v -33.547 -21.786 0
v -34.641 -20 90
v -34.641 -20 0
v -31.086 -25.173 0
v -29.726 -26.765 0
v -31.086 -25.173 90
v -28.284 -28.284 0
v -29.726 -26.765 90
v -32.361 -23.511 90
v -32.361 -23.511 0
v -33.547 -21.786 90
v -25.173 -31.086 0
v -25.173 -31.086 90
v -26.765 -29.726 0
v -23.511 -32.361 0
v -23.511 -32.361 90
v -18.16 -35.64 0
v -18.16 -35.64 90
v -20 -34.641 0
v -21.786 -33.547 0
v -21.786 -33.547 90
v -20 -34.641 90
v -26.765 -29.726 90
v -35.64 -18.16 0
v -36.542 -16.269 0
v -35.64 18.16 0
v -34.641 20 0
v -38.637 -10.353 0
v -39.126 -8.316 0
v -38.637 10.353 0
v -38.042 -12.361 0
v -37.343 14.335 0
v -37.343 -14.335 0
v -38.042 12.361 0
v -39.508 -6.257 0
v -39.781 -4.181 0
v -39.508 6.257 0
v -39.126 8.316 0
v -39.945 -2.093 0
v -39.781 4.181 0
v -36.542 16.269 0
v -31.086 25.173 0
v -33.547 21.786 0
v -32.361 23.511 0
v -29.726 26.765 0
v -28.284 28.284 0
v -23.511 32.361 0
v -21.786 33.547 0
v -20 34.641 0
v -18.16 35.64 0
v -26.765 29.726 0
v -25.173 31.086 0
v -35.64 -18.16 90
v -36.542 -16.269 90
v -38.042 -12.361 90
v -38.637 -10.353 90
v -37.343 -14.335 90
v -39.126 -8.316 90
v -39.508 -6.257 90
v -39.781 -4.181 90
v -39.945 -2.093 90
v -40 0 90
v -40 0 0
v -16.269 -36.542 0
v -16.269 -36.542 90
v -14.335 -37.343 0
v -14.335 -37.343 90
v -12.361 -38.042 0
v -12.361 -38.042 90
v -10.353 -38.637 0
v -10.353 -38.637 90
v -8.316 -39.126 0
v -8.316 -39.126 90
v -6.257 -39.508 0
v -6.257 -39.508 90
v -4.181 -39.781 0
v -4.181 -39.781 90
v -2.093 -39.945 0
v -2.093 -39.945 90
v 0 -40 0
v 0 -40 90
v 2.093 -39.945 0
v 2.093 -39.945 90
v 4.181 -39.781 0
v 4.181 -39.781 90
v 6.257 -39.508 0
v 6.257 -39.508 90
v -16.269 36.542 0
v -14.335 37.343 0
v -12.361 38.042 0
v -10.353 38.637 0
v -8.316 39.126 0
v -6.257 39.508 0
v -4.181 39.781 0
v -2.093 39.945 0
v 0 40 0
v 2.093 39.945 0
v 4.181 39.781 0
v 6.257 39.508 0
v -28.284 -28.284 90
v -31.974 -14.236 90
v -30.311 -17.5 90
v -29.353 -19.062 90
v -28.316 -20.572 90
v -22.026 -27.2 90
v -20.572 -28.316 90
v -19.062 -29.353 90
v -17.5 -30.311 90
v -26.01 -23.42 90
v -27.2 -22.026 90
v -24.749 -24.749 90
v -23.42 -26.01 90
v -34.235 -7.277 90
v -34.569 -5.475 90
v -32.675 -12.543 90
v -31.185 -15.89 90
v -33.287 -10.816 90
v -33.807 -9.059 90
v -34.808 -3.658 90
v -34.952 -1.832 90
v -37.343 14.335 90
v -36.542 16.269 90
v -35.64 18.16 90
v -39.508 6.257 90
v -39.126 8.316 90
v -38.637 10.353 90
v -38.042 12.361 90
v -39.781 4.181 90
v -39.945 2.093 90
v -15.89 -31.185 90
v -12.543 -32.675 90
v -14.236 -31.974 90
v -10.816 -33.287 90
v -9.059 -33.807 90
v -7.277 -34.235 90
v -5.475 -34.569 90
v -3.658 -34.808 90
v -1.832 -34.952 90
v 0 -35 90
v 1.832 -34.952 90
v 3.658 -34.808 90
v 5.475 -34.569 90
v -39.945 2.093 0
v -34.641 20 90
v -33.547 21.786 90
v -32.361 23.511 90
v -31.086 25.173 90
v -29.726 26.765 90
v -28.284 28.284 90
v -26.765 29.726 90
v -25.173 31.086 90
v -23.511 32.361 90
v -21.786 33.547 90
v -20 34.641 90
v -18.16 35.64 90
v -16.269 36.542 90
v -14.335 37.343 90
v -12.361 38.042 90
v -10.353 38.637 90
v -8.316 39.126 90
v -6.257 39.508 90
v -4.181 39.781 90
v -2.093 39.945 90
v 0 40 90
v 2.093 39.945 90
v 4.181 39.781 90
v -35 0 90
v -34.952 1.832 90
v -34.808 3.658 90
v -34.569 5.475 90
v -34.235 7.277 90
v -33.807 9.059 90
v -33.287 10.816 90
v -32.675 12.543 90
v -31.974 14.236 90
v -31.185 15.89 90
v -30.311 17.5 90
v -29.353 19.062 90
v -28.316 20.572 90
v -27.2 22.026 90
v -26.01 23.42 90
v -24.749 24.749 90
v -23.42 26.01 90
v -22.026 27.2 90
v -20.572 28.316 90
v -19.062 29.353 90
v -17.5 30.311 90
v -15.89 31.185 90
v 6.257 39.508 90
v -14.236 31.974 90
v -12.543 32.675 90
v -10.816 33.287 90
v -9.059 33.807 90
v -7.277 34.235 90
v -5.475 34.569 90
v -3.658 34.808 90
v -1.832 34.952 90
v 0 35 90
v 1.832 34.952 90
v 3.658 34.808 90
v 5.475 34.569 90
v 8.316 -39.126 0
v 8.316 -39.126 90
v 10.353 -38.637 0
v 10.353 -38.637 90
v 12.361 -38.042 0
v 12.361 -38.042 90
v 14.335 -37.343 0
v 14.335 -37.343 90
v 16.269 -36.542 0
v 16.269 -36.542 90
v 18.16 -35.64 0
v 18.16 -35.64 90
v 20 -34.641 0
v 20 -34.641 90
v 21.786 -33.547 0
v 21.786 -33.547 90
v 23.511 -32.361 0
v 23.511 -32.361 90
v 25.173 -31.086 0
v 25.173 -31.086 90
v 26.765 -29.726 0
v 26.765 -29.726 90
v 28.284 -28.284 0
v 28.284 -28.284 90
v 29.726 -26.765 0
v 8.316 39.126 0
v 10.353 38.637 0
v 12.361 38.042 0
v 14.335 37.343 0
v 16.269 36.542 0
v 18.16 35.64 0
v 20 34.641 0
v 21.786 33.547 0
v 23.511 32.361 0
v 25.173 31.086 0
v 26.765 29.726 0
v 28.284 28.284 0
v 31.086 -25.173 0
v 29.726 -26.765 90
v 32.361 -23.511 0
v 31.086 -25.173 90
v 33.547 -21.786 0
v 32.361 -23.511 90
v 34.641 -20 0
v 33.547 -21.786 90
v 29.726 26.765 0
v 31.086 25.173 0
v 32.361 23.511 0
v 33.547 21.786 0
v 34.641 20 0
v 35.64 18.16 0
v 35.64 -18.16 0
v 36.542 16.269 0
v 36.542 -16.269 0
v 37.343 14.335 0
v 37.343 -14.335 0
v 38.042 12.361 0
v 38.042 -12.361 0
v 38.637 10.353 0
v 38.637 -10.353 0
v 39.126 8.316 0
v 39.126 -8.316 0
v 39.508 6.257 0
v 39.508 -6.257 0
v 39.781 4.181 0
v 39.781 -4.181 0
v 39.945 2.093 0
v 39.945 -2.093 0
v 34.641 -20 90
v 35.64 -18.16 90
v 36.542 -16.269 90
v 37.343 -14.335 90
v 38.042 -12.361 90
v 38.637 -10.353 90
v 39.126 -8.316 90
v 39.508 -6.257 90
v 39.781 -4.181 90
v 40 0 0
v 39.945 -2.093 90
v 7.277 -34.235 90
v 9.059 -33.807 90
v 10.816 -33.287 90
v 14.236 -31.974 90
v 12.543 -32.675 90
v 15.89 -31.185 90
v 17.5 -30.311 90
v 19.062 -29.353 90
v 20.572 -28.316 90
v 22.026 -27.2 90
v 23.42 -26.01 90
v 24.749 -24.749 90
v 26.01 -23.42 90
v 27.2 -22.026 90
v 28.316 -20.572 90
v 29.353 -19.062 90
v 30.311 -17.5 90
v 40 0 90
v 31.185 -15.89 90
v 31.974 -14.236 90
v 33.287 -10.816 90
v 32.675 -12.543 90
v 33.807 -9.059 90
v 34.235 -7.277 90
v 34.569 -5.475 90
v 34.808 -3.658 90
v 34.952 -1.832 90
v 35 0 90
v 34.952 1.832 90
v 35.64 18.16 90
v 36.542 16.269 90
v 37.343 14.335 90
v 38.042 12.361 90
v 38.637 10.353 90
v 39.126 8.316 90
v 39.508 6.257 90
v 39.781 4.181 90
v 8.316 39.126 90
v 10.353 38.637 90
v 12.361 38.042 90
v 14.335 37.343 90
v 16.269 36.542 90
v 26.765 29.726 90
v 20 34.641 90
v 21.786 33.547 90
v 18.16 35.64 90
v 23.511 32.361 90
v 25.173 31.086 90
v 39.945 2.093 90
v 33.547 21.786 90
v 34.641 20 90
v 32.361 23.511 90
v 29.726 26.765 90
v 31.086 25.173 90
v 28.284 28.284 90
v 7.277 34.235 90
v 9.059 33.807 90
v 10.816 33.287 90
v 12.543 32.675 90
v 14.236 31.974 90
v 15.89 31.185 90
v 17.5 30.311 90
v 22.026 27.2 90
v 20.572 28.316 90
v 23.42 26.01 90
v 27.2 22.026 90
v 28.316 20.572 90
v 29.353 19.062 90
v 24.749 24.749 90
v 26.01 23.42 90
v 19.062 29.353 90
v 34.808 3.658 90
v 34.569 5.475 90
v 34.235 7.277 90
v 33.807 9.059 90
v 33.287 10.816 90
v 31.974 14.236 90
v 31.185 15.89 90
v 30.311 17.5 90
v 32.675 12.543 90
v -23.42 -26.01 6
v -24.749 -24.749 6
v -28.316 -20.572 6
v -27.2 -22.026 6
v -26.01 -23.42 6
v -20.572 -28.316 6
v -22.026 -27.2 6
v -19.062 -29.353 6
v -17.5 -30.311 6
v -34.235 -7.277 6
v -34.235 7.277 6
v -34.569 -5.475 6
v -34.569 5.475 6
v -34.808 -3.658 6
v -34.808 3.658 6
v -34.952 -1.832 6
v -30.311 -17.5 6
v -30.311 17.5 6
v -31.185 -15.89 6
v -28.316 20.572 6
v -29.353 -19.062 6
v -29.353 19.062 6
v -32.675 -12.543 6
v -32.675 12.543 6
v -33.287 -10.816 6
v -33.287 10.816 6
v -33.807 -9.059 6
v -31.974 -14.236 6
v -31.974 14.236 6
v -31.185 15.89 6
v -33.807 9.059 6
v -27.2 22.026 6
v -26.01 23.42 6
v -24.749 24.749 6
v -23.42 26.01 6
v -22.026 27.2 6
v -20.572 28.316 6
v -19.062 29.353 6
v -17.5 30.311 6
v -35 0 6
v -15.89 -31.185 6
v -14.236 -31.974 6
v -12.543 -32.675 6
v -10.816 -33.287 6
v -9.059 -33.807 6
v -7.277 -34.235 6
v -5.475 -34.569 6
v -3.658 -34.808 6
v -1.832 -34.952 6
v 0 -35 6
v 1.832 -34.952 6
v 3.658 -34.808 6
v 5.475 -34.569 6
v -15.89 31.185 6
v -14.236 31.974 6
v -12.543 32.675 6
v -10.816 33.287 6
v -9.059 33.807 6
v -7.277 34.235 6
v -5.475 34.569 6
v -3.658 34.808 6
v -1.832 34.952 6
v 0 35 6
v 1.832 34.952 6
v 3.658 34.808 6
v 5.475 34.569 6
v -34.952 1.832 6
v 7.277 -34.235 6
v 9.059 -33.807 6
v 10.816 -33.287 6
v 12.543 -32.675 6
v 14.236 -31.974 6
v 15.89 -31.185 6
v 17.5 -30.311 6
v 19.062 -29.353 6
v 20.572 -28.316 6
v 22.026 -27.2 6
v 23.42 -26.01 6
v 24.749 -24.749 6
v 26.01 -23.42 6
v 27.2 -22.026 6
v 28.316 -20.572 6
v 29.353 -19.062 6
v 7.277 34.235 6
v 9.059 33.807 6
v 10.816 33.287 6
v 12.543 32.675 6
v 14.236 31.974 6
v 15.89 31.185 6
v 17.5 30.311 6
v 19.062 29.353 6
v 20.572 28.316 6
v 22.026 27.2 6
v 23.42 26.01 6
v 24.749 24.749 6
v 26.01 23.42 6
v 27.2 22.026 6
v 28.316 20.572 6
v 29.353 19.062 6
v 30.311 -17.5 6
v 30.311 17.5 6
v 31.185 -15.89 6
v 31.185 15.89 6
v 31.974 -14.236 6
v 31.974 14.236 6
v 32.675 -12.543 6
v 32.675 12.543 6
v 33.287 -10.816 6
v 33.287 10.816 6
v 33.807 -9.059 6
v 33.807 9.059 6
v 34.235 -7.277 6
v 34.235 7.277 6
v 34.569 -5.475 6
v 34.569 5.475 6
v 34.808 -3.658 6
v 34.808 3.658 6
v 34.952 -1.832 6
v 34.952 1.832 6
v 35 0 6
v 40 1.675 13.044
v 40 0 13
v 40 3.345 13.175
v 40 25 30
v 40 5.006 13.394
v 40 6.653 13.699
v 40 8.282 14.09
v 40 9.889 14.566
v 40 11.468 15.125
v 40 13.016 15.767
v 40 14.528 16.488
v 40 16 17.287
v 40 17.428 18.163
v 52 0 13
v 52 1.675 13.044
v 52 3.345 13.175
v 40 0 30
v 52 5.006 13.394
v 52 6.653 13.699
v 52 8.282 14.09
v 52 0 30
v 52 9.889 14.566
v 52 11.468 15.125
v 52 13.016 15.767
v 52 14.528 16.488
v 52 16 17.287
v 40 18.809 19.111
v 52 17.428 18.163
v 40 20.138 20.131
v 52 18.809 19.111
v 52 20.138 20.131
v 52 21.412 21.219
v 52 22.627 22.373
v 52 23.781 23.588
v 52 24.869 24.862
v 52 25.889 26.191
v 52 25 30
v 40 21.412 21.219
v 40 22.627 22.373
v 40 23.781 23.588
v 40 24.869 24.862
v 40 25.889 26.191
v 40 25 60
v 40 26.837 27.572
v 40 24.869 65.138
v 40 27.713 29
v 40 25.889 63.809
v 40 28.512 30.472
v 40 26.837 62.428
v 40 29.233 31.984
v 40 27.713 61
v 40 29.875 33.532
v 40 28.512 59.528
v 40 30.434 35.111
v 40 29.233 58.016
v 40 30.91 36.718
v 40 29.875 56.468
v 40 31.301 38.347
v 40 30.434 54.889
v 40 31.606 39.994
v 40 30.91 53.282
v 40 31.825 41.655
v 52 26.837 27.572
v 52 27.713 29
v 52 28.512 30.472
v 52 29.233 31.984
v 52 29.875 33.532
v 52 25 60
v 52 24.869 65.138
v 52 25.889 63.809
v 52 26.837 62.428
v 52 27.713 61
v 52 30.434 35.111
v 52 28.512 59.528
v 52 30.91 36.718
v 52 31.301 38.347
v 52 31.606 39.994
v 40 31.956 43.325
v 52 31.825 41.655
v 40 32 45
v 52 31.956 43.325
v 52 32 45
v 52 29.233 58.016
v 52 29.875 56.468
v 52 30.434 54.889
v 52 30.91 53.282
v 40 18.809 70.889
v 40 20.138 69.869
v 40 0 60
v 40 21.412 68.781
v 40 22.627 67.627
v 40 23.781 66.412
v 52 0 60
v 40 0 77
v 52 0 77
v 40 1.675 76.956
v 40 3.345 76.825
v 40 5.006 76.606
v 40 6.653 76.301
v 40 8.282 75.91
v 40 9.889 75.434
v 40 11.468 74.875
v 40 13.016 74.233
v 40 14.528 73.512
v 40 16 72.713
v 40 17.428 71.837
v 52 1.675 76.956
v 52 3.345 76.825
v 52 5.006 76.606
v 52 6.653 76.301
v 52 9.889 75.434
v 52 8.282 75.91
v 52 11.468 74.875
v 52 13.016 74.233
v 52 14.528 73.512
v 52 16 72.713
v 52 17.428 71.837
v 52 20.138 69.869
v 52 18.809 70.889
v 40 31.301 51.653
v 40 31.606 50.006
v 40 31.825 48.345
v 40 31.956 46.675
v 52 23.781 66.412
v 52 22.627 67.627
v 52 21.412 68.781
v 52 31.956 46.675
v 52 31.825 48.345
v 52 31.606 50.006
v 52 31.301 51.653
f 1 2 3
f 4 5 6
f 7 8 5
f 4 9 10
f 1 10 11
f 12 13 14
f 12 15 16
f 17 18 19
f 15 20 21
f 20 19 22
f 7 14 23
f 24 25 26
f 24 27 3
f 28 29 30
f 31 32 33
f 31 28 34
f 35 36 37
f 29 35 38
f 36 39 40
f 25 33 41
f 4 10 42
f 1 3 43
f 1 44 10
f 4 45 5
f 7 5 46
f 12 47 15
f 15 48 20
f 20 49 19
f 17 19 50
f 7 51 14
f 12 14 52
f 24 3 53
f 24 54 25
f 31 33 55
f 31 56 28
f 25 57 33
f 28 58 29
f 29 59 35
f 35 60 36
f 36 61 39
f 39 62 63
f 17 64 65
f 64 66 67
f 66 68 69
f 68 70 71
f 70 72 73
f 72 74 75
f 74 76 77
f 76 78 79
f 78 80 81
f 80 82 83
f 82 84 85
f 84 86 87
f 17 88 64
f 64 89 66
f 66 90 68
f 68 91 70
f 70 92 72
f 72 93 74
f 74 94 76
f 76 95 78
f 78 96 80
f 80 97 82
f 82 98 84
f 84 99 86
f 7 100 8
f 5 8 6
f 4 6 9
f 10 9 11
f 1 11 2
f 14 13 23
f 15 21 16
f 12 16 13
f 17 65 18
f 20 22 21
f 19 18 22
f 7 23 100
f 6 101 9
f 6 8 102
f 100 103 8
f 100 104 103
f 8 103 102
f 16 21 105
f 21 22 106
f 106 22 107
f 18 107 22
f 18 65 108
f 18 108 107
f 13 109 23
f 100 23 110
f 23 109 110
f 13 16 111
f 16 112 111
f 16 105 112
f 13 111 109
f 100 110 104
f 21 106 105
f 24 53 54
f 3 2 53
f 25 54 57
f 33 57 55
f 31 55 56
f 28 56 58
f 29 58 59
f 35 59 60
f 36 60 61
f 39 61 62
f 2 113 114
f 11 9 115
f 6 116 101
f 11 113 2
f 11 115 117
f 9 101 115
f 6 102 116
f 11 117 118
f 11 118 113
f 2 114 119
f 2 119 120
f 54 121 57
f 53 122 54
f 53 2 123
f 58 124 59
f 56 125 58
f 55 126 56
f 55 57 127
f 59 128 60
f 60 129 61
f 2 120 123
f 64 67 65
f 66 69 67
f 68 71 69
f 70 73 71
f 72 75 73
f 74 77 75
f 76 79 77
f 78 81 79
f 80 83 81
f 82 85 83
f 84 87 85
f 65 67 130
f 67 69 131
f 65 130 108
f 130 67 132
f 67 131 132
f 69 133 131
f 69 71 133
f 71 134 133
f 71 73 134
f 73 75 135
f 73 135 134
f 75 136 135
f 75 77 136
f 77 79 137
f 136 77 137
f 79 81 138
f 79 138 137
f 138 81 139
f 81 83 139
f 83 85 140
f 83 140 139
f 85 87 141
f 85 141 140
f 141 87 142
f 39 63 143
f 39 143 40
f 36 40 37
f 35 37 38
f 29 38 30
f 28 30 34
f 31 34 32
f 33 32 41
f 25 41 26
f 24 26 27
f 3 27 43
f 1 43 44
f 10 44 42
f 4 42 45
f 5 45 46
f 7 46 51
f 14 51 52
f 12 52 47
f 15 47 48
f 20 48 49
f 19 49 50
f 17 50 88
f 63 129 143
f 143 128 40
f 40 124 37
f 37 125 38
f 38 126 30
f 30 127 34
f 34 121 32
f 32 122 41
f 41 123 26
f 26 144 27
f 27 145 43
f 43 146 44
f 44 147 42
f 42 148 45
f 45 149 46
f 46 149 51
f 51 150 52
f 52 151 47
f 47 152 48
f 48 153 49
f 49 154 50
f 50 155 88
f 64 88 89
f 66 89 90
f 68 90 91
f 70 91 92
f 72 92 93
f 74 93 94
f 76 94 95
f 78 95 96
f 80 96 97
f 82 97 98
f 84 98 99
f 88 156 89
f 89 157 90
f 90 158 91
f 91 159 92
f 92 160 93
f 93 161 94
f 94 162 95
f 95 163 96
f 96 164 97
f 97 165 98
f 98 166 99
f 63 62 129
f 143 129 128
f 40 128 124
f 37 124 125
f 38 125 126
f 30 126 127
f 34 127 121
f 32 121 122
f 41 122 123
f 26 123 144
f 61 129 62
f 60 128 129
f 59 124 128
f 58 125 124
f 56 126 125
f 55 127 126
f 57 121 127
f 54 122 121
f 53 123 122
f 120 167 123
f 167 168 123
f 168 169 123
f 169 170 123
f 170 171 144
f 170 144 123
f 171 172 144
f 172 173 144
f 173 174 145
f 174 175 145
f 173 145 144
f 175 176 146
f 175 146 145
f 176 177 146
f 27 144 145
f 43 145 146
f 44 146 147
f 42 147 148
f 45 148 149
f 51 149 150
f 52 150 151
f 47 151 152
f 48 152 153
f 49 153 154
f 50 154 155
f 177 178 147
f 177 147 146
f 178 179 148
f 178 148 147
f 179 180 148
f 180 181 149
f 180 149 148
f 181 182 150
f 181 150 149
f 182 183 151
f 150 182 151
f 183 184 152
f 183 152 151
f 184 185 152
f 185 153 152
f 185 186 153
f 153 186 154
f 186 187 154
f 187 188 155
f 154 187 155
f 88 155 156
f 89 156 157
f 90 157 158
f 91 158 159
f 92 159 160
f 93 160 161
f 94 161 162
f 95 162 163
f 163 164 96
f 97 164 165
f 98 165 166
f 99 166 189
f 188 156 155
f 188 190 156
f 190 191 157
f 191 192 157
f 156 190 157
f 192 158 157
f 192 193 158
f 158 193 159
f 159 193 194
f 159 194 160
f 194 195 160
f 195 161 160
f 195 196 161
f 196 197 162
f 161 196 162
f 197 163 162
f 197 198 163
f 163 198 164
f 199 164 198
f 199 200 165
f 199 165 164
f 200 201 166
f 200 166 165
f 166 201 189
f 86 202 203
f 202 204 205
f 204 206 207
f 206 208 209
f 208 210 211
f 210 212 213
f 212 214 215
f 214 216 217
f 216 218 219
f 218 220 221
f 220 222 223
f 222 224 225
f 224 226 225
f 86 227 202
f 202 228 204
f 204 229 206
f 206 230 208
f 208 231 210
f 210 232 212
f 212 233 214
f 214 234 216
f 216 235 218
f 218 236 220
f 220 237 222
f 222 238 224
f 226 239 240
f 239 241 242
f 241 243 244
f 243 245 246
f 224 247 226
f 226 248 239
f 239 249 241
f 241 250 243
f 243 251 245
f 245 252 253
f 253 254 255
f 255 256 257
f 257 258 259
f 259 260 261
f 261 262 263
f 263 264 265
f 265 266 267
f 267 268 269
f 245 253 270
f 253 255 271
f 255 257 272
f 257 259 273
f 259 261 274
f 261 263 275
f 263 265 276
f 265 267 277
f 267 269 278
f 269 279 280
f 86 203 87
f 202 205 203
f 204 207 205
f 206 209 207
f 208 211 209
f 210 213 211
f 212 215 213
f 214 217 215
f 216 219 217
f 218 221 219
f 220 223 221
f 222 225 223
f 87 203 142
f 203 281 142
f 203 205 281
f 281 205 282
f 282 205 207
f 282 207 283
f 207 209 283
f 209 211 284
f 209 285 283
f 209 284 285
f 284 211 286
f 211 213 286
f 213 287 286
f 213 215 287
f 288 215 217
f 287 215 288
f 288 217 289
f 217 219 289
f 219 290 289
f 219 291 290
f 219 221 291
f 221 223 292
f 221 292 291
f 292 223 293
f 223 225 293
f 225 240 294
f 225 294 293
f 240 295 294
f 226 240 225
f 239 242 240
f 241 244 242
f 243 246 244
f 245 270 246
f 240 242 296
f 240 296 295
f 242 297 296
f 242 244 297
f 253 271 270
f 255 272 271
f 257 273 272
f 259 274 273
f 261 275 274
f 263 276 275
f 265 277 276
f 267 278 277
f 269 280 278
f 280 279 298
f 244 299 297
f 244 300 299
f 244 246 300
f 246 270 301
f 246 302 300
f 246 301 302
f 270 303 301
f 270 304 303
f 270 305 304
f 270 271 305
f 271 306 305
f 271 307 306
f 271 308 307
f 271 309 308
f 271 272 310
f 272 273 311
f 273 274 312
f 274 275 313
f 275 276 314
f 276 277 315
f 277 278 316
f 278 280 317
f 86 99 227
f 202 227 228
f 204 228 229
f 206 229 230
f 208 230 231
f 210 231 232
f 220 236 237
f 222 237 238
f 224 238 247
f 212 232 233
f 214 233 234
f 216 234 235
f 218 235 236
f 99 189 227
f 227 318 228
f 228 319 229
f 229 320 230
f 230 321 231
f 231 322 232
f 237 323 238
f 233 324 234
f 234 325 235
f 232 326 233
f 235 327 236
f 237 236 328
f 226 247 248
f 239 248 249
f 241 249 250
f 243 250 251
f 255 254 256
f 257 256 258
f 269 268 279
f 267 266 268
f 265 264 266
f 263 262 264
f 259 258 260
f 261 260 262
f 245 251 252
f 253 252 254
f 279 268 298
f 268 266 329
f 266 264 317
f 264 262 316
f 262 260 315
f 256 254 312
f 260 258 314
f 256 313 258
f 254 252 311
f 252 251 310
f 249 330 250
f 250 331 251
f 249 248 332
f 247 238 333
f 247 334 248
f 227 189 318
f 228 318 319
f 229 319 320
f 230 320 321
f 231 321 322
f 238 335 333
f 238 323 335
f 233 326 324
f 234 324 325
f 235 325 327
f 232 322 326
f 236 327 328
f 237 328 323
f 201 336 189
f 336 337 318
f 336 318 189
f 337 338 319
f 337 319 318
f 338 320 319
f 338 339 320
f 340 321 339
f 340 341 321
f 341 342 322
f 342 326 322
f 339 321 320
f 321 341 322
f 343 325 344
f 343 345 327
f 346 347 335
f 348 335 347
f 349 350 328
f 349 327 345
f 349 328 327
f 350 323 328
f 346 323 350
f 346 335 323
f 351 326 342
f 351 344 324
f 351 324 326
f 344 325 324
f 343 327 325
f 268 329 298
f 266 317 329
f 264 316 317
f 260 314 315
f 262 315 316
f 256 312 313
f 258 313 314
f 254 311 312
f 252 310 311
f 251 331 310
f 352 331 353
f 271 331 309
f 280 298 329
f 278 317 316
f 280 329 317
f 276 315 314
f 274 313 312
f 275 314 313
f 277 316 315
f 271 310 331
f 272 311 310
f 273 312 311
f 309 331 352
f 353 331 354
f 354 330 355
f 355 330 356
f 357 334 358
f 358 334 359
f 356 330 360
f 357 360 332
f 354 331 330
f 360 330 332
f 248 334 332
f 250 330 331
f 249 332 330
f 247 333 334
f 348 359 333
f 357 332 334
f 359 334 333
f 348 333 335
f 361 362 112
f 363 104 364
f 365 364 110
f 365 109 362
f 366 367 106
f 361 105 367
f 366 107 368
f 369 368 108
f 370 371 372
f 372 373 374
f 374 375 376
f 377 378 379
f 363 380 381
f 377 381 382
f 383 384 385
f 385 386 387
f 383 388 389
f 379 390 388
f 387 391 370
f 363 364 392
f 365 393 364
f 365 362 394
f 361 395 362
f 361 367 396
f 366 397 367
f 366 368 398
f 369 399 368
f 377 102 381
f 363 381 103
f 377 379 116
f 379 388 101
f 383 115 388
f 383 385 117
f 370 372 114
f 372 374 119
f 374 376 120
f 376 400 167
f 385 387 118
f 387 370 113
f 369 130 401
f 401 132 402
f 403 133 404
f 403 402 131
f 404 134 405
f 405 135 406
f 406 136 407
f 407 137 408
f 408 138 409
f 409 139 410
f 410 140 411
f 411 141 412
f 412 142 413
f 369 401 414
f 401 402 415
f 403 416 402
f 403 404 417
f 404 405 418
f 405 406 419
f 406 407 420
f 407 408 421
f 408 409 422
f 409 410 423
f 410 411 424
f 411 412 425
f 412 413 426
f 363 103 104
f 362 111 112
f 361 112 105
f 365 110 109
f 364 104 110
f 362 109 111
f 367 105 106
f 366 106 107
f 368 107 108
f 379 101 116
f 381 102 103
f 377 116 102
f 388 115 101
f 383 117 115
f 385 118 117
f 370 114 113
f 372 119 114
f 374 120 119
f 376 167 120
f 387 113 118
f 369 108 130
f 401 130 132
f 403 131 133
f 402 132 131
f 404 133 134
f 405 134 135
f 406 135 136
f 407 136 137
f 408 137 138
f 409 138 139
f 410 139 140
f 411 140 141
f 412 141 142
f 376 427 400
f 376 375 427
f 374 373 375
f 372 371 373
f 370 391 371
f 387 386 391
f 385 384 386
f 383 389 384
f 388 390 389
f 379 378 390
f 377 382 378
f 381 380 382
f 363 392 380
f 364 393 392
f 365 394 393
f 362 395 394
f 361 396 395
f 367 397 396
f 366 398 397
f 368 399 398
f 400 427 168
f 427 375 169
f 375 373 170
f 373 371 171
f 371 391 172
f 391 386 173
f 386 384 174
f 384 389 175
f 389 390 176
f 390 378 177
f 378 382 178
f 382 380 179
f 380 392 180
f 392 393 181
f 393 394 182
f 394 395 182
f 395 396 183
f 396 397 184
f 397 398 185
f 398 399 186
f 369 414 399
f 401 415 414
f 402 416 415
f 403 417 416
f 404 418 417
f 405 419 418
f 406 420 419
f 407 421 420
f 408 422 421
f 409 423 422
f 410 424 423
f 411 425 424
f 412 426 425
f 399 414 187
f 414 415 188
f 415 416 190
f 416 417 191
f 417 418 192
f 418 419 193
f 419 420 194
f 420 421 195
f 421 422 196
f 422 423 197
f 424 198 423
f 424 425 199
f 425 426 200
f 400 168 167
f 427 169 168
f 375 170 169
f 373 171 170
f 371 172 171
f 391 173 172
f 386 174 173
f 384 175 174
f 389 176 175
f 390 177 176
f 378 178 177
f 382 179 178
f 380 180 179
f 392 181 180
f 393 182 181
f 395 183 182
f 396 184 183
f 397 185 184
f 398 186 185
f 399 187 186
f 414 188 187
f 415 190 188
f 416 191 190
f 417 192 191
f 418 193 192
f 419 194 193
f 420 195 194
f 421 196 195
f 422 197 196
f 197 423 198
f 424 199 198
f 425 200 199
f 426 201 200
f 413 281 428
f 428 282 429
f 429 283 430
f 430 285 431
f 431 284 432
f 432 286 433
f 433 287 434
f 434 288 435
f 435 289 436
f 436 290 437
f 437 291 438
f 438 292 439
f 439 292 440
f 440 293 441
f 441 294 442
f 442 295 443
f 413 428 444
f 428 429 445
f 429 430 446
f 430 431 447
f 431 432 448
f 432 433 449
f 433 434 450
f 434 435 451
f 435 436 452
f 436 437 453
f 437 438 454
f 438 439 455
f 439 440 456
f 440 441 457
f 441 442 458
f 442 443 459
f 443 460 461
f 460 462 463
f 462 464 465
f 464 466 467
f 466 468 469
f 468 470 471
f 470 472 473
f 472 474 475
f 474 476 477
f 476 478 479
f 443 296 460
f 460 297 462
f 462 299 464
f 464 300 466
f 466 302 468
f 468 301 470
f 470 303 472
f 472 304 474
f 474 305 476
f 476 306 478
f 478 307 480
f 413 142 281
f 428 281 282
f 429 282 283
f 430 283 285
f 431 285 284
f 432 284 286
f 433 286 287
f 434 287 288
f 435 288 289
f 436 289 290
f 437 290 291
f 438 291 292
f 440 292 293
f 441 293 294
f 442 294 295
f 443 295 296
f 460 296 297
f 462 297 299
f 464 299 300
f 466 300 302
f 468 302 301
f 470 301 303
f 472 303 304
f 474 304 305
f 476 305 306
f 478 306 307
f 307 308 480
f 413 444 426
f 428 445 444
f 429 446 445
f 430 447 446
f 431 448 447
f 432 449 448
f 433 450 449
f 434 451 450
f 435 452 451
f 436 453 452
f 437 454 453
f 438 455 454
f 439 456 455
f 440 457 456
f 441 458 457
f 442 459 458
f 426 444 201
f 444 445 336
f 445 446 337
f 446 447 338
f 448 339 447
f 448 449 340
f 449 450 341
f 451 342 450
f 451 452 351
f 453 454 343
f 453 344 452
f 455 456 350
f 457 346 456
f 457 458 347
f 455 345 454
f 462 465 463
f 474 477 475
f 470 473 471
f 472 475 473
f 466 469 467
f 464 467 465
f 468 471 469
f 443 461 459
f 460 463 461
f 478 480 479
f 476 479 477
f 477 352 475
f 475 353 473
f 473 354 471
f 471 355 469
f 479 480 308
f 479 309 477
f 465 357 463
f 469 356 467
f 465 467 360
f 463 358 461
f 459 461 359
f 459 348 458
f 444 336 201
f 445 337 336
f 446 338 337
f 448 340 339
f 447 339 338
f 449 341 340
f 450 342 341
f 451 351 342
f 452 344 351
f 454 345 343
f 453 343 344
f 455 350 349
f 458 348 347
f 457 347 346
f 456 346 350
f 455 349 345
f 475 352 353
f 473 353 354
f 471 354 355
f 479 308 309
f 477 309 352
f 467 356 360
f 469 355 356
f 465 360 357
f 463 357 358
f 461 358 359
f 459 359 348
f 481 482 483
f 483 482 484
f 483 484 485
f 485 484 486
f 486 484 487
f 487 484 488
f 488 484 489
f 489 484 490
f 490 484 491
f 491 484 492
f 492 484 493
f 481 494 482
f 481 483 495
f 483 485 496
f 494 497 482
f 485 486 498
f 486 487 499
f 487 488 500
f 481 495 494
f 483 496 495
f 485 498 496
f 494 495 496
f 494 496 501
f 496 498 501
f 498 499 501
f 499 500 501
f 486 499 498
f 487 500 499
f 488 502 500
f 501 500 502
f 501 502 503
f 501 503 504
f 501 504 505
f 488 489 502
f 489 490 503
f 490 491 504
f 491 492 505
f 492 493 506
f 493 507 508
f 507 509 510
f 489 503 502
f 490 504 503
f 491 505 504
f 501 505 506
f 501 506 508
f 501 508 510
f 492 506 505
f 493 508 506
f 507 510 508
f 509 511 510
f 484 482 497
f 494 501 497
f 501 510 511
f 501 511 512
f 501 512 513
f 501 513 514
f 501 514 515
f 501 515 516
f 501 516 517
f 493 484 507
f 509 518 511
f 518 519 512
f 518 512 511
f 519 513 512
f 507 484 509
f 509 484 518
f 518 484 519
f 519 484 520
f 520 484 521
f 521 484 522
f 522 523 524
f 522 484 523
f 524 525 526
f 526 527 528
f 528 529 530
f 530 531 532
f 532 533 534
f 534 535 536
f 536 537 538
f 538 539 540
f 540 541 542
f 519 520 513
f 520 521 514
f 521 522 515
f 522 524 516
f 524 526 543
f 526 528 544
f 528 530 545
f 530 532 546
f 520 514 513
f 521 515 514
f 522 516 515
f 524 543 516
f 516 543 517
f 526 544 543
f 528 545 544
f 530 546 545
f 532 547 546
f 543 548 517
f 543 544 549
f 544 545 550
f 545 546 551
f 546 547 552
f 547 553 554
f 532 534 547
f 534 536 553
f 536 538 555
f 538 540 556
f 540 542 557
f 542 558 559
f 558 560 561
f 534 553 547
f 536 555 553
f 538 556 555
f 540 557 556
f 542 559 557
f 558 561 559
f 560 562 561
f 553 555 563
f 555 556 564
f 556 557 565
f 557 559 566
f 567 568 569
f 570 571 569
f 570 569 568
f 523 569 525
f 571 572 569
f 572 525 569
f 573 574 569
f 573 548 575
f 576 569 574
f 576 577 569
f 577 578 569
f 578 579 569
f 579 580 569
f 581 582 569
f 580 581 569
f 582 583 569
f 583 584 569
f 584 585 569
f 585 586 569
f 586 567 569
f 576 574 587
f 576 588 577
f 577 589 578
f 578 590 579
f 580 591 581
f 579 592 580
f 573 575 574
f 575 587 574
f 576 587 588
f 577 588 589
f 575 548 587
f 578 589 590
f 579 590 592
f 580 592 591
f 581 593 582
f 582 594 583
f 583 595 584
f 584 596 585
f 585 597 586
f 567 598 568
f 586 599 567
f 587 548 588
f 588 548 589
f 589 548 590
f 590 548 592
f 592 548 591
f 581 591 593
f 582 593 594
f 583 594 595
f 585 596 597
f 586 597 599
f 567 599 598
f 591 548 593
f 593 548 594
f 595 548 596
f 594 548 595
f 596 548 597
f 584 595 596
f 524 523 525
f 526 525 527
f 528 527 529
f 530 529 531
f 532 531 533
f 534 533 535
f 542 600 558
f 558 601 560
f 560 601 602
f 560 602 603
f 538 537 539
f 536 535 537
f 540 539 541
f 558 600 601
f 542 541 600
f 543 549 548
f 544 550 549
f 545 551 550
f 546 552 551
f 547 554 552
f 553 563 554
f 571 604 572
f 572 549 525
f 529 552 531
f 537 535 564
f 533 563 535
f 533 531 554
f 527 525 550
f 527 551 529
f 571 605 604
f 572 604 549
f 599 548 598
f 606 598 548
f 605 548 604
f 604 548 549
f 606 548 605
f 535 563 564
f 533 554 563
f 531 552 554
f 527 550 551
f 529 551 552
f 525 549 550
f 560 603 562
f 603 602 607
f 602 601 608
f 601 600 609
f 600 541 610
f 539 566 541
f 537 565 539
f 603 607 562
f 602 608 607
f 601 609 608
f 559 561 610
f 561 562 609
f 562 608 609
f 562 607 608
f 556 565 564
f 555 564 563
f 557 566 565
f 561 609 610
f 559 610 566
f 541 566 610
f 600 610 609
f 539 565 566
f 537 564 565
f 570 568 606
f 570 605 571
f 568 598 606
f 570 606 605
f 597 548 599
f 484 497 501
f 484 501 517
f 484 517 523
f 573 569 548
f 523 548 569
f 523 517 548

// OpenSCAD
$fn = 120;

outer_radius = 40;
inner_radius = 35;
mug_height = 90;
bottom_thickness = 6;

handle_radius = 32;
handle_length = 12;
handle_inner_width = 25;
handle_inner_height = 30;
handle_margin = 2;

module mug_body() {
    difference() {
        // 外側
        cylinder(r = outer_radius, h = mug_height);
        // 内側（底面厚み分だけ高く）
        translate([0, 0, bottom_thickness])
            cylinder(r = inner_radius, h = mug_height - bottom_thickness);
    }
}

module handle_outer() {
    linear_extrude(height = handle_length, center = true)
        intersection() {
            circle(r = handle_radius);
            translate([0, -handle_radius])
                square([handle_radius, 2 * handle_radius]);
        }
}

module handle_body() {
    translate([outer_radius + handle_length / 2, 0, mug_height / 2])
        multmatrix([
            [0, 0, 1, 0],
            [1, 0, 0, 0],
            [0, 1, 0, 0],
            [0, 0, 0, 1]
        ])
            handle_outer();
}

module handle_cutout() {
    translate([
        outer_radius - handle_margin,
        0,
        mug_height / 2 - handle_inner_height / 2
    ])
        cube([handle_length + handle_margin * 2, handle_inner_width, handle_inner_height]);
}

module mug_handle() {
    difference() {
        handle_body();
        handle_cutout();
    }
}

union() {
    mug_body();
    mug_handle();
}
